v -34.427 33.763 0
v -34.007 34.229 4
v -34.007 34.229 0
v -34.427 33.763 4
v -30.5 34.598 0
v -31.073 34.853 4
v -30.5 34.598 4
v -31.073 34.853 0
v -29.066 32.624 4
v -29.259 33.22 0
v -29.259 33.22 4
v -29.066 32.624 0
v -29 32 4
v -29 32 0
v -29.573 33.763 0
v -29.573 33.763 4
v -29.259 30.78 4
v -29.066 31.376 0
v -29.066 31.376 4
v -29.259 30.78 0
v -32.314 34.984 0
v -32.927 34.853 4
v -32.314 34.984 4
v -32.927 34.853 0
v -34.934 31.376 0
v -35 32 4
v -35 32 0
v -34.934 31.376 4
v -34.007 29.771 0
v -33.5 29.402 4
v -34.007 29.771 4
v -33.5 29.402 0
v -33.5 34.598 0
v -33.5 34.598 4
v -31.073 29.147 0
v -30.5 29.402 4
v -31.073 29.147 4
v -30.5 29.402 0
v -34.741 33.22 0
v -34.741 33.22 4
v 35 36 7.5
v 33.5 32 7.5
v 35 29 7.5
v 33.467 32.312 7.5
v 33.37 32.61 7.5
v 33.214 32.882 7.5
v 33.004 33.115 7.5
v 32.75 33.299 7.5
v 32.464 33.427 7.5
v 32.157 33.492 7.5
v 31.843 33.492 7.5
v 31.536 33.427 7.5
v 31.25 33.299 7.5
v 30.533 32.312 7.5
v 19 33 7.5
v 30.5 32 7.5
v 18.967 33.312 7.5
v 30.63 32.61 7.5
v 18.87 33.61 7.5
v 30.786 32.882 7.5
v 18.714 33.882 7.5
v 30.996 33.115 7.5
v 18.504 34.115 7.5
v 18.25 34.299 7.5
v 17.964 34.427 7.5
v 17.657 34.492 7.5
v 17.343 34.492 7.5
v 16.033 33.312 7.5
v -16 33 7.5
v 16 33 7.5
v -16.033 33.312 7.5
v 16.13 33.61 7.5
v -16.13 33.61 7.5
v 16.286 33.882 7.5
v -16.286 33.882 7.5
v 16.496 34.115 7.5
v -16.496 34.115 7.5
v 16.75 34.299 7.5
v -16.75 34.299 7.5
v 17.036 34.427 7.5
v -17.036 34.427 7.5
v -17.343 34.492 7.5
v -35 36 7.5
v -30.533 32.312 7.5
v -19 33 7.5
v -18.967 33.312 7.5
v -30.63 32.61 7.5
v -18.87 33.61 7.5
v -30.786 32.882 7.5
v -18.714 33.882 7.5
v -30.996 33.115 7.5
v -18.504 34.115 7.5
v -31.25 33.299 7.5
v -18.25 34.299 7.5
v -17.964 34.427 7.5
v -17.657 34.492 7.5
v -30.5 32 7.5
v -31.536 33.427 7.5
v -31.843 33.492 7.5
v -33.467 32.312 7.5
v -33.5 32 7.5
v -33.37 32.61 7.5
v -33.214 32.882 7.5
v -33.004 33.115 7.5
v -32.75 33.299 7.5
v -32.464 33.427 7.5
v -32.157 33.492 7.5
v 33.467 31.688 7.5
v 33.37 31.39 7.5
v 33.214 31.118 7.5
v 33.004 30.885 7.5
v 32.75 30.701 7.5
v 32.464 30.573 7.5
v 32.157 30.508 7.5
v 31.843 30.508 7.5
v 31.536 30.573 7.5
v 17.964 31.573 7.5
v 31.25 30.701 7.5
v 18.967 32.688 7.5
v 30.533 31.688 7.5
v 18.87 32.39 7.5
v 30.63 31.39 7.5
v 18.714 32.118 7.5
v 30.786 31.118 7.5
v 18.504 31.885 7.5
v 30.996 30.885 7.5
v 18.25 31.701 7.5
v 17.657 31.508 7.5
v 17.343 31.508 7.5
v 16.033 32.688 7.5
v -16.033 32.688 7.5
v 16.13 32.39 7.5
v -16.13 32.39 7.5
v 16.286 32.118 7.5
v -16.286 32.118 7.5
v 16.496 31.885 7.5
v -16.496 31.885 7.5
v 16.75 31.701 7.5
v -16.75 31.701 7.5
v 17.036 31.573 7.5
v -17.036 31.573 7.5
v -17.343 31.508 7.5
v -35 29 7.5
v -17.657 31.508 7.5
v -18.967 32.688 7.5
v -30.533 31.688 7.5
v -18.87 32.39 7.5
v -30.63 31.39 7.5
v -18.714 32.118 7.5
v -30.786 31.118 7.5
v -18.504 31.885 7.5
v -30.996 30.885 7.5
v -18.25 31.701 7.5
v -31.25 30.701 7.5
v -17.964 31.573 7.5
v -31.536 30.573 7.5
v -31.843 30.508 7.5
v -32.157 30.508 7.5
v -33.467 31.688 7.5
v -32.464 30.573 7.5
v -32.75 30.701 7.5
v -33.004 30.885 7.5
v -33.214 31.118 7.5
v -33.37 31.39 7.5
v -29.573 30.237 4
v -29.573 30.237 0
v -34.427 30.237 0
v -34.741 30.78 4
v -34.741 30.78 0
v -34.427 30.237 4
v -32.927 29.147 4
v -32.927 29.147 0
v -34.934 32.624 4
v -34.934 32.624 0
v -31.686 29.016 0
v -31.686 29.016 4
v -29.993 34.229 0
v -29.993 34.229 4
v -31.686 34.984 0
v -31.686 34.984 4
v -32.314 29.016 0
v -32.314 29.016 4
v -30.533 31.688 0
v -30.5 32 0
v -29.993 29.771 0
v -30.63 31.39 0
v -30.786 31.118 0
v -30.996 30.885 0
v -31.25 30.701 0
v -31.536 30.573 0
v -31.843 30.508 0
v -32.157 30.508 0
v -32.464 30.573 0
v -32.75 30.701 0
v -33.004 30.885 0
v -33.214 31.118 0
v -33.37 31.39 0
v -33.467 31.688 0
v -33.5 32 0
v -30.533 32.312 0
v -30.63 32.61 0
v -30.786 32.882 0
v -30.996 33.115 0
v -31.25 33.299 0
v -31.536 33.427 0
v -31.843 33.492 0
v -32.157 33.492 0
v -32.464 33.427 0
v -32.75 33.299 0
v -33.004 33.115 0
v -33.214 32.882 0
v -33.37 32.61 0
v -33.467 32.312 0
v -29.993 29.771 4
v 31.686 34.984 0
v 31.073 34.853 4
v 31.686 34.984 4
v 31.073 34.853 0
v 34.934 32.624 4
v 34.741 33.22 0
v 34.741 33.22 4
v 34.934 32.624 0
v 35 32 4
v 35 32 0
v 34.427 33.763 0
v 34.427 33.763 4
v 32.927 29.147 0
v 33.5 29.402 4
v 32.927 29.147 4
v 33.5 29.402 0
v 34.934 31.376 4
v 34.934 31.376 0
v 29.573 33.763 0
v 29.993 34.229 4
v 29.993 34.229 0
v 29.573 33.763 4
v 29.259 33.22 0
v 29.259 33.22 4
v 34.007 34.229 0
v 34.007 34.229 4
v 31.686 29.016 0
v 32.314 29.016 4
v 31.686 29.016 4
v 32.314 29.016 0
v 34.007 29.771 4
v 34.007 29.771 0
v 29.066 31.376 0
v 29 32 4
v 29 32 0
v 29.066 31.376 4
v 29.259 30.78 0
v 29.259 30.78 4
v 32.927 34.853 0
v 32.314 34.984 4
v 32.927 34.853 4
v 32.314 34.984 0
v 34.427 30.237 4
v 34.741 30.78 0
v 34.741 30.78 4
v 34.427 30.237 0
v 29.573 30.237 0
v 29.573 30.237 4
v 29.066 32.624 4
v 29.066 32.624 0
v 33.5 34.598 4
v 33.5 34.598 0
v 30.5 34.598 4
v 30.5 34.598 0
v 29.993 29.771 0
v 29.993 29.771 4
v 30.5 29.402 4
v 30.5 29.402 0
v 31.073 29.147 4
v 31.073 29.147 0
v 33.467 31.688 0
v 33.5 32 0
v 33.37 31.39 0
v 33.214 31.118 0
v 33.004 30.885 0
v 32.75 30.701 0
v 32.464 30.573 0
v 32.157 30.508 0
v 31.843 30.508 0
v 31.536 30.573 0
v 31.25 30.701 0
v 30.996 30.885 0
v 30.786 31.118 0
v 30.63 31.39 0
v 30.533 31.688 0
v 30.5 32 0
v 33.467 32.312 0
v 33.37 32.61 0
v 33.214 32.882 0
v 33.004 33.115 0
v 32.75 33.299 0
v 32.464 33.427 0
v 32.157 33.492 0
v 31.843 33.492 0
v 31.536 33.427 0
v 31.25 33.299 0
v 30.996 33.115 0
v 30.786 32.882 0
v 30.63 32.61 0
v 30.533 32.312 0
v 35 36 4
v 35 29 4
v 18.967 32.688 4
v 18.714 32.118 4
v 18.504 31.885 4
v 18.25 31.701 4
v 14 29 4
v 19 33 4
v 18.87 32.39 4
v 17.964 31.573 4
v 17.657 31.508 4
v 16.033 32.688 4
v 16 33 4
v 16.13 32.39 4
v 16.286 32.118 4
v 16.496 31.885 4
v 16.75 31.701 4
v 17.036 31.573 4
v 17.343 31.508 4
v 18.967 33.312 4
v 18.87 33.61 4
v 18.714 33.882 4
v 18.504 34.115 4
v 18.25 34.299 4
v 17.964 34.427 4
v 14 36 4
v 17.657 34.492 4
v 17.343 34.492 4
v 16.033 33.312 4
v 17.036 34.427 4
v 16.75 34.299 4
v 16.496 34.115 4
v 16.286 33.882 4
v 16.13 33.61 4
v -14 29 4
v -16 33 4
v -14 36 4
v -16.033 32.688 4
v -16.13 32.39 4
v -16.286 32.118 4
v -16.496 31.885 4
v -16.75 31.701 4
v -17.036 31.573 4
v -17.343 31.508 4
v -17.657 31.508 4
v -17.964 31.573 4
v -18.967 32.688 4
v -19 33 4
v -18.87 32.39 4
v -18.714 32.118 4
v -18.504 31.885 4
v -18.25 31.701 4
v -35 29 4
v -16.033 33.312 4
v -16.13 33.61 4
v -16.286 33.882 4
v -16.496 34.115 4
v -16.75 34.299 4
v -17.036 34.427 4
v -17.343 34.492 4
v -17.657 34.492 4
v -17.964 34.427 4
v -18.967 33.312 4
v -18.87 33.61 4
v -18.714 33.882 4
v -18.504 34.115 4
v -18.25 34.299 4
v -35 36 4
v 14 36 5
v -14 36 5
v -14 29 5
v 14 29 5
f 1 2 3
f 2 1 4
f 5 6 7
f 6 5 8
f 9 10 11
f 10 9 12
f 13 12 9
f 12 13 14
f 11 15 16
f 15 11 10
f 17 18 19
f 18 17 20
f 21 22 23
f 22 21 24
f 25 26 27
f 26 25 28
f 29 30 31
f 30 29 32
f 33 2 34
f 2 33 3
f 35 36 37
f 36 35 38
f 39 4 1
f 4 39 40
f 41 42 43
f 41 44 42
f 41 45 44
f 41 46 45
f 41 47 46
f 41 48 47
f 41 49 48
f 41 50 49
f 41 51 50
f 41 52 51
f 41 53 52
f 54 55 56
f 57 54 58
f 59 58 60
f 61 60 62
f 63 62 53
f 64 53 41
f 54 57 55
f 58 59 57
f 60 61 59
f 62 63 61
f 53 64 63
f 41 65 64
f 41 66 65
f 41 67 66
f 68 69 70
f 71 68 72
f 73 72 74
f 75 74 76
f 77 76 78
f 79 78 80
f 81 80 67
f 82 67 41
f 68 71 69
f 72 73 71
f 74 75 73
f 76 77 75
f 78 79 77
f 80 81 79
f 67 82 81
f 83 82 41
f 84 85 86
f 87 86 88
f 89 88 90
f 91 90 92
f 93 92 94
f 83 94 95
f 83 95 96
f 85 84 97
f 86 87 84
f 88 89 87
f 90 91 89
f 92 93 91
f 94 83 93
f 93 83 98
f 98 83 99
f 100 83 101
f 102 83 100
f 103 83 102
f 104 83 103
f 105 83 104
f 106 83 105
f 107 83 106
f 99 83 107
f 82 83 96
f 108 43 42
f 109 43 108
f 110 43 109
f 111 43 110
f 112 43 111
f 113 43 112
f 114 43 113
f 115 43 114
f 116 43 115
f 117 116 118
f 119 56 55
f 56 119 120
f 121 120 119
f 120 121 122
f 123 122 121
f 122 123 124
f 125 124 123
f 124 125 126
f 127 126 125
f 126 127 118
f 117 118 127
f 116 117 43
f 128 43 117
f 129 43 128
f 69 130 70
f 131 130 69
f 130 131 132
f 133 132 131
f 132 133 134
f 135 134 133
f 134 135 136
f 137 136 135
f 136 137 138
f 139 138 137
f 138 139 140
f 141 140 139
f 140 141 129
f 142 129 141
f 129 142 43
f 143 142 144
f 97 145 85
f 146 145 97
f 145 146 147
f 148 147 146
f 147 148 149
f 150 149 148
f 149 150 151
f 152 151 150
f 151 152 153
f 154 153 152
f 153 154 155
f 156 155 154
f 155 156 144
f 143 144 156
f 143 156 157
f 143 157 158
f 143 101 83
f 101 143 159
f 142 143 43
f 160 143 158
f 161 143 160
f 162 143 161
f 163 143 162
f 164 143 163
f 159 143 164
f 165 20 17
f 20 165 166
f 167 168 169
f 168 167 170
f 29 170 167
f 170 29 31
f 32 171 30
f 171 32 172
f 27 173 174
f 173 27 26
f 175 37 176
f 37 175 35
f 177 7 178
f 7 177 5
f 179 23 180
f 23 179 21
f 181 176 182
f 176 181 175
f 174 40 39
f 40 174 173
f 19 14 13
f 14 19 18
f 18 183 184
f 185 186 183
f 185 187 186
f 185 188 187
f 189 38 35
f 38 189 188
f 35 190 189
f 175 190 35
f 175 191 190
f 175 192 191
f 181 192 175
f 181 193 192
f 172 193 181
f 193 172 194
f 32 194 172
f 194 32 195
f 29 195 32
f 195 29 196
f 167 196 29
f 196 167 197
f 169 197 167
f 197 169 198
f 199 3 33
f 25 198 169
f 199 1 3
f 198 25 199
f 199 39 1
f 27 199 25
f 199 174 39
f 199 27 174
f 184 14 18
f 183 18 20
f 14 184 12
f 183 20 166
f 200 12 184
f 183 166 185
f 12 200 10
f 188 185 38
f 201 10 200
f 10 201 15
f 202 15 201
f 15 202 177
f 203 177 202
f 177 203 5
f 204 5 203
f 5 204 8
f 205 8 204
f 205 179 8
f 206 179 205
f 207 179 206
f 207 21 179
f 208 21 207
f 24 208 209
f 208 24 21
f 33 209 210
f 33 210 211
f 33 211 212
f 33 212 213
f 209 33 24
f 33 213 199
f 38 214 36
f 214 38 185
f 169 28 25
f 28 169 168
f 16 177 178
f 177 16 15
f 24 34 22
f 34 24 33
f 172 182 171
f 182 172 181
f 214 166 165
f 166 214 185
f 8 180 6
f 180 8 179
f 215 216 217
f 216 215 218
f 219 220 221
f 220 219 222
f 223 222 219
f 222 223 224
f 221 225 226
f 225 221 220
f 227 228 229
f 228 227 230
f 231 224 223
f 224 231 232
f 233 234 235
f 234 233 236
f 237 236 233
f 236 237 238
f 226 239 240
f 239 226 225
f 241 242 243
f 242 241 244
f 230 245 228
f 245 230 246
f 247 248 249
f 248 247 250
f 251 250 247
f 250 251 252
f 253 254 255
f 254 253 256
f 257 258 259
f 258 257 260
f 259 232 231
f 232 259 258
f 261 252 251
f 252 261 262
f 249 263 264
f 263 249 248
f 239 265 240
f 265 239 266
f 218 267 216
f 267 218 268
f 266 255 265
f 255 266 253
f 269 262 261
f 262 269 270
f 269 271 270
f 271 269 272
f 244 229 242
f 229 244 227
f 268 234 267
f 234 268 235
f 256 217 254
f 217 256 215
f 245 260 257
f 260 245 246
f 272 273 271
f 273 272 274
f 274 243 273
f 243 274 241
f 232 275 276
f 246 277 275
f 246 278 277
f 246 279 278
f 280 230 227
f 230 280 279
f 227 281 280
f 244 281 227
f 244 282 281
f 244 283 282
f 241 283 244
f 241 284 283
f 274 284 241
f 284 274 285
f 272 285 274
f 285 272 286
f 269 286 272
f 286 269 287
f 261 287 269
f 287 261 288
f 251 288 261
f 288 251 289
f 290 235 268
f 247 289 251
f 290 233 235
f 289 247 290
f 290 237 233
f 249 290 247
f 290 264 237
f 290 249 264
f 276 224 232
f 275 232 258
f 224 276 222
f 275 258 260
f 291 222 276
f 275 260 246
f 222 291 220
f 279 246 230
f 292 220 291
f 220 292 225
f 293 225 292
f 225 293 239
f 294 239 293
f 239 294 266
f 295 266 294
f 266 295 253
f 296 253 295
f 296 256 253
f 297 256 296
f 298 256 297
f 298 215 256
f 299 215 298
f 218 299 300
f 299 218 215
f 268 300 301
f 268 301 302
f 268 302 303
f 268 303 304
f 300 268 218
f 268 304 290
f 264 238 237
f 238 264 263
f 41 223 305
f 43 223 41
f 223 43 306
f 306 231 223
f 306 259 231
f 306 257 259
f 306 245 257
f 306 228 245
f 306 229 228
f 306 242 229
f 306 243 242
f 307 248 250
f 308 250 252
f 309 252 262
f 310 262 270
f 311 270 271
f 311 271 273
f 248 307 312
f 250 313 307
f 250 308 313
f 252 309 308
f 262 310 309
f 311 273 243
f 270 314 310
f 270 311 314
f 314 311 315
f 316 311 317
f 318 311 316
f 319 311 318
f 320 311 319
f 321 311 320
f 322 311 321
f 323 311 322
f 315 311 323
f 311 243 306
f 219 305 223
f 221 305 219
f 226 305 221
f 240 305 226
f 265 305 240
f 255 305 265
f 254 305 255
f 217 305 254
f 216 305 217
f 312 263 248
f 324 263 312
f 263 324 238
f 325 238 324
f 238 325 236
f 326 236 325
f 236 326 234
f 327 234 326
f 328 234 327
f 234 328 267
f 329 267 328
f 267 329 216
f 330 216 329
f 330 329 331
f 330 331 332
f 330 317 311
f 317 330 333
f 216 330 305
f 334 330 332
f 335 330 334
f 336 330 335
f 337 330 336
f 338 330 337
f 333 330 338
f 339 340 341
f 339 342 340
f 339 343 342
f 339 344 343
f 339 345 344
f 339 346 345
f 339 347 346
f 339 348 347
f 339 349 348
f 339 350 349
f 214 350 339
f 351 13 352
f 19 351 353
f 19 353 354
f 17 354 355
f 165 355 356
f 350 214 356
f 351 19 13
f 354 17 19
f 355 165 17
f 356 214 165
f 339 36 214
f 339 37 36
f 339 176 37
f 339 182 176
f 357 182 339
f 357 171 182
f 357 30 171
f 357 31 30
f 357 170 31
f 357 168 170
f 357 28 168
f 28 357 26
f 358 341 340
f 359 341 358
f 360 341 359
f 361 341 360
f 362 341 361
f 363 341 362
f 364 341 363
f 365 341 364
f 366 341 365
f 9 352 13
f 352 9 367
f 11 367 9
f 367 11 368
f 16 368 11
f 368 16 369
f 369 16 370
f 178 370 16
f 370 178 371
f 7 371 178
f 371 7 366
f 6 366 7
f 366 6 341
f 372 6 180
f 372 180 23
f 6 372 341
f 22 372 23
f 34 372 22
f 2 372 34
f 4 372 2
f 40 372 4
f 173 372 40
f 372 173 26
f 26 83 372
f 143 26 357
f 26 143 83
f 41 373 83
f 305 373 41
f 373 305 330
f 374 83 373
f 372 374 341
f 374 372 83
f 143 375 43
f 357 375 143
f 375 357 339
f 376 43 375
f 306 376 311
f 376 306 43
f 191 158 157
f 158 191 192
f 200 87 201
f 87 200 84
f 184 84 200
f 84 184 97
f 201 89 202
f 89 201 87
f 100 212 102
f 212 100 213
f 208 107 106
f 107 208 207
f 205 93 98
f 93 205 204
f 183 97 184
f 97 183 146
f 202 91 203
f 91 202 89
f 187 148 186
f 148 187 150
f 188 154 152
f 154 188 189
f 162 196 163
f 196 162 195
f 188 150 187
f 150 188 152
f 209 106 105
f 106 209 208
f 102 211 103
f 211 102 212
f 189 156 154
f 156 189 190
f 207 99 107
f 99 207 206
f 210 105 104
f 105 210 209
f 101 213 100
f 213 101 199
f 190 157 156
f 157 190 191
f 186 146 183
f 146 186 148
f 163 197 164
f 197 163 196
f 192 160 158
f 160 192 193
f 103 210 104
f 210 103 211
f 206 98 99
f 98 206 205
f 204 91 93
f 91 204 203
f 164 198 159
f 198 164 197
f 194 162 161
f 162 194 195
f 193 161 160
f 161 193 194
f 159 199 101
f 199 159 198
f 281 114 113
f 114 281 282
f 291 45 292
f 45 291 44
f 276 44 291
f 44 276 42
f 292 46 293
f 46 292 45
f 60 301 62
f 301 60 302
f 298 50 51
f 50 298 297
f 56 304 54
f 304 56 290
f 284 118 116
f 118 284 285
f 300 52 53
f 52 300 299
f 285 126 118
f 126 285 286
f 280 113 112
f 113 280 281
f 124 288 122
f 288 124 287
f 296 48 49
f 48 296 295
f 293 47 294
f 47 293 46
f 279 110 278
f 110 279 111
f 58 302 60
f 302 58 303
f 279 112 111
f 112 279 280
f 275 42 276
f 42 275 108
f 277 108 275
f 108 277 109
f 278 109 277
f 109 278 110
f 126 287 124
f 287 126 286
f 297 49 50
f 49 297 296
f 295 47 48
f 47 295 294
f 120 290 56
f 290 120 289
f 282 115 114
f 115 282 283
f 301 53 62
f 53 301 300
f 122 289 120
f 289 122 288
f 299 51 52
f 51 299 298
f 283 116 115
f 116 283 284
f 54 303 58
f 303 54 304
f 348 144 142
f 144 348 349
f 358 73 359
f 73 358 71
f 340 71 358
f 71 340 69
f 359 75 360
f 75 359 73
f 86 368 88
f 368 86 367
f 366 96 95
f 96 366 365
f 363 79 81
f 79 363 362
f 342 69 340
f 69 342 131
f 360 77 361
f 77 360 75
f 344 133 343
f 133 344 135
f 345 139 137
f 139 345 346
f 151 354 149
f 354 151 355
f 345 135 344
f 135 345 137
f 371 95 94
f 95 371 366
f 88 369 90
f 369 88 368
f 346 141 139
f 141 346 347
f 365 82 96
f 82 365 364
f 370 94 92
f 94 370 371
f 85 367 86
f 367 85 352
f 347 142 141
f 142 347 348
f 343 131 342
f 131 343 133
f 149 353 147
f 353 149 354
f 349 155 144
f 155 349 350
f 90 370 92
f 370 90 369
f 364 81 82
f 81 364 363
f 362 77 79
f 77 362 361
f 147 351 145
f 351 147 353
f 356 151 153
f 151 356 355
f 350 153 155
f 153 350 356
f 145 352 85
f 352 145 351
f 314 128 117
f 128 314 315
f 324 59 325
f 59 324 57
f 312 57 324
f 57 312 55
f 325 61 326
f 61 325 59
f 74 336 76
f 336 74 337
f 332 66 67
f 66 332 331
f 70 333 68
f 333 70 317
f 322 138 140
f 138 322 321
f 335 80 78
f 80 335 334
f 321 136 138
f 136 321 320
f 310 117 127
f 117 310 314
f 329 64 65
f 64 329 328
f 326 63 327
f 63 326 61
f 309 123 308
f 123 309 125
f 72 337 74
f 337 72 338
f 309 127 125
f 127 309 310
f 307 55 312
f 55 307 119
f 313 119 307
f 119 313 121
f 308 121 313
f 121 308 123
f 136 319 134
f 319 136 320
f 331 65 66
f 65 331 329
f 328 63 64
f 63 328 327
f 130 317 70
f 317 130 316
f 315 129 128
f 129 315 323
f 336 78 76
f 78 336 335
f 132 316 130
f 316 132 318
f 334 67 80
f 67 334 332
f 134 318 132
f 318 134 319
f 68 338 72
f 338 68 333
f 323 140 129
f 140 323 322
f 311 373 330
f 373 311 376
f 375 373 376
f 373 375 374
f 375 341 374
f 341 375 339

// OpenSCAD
$fn=30;

screw_offset=32;
stepper_screw_offset=35/2;
difference() {
    union() {
        // four main pillars
        for (i = [-screw_offset:2*screw_offset:screw_offset]) {

                translate([i, screw_offset, 0]) {
                    cylinder(d=6,h=7.5);
                }
        }
        // stepper mounting bracket
        translate([0,screw_offset + .5,4+(3.5/2)])
            cube([2*screw_offset + 6, 7, 3.5],center=true);
        
        
    }

    for (i = [-screw_offset:2*screw_offset:screw_offset]) {
        translate([i, screw_offset, 0])
            cylinder(d=3,h=8);
    }
    
    
    // additional space for gear
    translate([0,screw_offset,4])
        cube([28,8,2],center=true);
    
    for (i = [-stepper_screw_offset:2*stepper_screw_offset:stepper_screw_offset]) {
        translate([i, screw_offset + 1, 0])
            cylinder(d=3,h=8);
    }
}
